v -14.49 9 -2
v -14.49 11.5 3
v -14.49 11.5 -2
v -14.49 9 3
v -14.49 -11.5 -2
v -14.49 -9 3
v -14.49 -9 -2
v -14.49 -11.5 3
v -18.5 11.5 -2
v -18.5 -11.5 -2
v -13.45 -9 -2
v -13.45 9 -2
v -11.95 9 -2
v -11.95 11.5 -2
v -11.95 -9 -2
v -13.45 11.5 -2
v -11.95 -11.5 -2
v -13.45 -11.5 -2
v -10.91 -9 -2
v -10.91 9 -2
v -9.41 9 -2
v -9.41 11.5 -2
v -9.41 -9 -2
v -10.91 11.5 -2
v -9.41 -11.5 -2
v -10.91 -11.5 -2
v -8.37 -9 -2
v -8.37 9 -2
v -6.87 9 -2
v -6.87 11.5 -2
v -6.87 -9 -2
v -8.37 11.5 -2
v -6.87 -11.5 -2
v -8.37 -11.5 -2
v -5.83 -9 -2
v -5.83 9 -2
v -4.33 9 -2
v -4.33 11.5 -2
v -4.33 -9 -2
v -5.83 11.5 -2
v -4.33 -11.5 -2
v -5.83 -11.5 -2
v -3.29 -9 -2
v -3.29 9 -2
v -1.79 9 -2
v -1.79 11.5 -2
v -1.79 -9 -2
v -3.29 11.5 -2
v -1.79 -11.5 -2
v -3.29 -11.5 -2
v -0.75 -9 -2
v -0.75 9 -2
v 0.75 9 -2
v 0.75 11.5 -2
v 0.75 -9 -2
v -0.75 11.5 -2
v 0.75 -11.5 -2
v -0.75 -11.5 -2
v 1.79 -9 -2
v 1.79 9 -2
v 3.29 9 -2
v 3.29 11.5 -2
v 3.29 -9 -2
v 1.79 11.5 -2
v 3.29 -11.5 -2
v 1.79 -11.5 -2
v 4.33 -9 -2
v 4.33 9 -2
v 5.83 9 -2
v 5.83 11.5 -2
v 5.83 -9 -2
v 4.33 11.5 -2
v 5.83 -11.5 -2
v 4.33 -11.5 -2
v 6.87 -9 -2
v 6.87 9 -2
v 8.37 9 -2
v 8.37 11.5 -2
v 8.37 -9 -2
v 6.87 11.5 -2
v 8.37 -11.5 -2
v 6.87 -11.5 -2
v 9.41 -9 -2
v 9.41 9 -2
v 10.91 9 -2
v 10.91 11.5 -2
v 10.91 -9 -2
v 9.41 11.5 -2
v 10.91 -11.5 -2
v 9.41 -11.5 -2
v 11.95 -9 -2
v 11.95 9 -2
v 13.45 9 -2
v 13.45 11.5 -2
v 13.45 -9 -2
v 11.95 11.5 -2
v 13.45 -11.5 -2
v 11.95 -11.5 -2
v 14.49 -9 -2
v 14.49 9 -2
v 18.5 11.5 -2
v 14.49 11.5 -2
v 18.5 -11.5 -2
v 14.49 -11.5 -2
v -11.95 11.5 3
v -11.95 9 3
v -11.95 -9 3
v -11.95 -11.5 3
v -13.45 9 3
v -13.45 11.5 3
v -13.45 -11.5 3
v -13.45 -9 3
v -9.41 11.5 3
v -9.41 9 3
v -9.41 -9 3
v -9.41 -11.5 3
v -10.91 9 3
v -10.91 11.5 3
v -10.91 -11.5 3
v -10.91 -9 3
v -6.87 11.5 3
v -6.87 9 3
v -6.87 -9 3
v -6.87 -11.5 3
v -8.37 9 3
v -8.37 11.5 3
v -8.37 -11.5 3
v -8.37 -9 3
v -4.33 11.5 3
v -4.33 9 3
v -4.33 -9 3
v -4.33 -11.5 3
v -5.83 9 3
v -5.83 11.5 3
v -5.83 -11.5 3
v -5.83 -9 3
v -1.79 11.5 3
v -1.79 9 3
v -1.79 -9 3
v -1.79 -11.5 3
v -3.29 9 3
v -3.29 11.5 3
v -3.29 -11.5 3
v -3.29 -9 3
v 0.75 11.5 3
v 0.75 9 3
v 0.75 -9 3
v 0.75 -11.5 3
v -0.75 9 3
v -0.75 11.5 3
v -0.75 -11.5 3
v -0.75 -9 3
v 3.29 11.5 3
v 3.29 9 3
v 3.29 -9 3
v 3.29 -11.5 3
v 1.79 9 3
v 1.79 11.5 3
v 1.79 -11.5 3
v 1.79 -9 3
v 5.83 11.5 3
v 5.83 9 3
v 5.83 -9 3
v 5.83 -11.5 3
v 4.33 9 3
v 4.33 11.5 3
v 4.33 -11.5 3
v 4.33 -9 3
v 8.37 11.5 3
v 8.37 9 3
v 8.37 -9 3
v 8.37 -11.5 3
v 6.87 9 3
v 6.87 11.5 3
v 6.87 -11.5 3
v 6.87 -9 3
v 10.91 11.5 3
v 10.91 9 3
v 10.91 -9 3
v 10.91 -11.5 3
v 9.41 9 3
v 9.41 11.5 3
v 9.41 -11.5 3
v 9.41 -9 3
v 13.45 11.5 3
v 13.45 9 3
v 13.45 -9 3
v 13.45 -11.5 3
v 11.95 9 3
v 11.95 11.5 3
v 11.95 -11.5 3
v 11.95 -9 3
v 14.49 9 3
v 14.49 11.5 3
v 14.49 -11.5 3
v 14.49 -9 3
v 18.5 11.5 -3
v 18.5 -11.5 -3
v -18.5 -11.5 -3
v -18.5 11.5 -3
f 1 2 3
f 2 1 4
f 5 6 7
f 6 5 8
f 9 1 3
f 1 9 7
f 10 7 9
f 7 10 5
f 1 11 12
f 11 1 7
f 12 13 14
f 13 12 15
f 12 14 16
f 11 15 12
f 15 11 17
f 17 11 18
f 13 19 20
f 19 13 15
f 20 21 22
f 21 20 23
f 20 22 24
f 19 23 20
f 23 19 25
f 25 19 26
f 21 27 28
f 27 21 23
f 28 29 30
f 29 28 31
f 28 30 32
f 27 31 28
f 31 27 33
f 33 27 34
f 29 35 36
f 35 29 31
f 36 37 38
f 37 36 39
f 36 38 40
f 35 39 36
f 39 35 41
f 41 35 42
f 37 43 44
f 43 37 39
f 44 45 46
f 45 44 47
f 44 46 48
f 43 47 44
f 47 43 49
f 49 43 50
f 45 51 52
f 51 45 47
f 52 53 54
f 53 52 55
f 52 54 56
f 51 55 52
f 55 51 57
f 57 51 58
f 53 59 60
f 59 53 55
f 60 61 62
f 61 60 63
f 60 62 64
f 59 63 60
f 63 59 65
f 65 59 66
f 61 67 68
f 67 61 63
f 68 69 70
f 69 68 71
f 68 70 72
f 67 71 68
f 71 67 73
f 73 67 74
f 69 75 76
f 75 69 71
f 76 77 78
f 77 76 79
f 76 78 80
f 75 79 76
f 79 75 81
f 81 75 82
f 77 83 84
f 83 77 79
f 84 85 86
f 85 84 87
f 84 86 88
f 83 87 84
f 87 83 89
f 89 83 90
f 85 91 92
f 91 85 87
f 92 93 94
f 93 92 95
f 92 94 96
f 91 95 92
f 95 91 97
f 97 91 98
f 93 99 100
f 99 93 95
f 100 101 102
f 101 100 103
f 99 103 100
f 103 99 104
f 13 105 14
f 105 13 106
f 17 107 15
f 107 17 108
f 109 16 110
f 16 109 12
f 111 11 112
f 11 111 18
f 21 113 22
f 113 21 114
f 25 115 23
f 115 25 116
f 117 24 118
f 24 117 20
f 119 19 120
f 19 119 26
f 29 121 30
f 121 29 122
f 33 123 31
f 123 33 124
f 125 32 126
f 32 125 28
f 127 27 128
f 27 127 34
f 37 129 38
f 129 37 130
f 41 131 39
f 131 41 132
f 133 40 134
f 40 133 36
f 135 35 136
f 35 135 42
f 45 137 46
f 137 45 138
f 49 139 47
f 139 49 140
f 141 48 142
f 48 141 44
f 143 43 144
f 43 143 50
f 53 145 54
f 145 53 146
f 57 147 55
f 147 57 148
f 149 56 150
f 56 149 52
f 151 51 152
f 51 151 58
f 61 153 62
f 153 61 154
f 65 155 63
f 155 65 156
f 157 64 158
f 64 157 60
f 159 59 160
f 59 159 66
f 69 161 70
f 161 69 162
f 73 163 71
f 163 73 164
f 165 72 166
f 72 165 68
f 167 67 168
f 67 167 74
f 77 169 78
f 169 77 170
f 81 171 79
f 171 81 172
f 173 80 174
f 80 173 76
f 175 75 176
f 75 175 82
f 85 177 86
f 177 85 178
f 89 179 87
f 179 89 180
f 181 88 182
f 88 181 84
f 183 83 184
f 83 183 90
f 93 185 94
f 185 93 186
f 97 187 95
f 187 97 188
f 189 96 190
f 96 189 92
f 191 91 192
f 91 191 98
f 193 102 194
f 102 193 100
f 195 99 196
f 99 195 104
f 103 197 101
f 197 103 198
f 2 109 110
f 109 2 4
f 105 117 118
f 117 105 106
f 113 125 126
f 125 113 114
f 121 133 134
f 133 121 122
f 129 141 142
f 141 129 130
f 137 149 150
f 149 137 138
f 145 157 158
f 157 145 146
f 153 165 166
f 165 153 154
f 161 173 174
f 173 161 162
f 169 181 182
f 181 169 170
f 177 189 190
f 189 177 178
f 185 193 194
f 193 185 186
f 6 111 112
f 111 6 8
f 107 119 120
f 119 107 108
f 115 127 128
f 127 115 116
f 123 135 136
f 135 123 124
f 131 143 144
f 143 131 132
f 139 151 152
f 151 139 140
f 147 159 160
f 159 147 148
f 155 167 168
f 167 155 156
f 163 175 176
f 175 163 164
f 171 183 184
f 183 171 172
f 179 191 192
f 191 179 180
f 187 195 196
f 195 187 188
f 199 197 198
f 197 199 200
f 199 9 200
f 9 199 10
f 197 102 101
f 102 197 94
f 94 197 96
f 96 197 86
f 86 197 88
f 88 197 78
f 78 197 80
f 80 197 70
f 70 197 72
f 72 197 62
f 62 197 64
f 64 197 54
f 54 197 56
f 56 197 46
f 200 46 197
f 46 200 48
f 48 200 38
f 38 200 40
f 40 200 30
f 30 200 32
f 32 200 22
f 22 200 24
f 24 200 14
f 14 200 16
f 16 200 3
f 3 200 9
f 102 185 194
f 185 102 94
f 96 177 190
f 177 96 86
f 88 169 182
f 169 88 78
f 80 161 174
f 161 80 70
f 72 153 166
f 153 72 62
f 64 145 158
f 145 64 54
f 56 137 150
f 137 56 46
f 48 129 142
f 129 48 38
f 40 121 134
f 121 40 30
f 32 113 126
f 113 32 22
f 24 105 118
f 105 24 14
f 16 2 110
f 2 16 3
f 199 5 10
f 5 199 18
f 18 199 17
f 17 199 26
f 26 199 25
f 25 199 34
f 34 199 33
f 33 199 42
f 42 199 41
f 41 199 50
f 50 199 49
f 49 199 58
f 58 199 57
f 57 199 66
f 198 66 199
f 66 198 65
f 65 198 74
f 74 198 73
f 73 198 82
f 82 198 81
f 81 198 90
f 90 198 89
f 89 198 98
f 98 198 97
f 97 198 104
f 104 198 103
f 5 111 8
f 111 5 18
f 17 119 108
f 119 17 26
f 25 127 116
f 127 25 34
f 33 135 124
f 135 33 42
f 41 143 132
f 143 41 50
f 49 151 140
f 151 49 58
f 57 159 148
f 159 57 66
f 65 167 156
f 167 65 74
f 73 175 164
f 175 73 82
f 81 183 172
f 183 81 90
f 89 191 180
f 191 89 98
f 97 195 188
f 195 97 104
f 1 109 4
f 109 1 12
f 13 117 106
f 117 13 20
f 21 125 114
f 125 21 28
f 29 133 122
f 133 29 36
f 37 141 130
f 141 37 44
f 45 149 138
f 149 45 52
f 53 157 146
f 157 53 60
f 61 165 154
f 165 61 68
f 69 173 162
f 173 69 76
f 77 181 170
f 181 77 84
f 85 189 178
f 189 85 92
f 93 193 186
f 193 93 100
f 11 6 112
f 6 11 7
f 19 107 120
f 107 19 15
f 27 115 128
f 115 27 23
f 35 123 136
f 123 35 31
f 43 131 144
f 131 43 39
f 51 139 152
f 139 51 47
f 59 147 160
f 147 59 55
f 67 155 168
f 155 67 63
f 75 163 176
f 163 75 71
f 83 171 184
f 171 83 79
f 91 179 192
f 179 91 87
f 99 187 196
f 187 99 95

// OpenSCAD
// utility for keeping wires organized and not touching for the kb2040 inside

difference() {
    cube([37, 23, 6], center=true);
    translate([0, 0, 1]) cube([33.5, 18, 6], center=true);
    
    for (i = [0:12]) {
        translate([2.54*(i - 6), 0, 1]) #cube([1.5, 24, 6], center=true);
    }
    translate([2.54*(-7), 0, 1]) #cube([5, 24, 6], center=true);
    translate([2.54*(7), 0, 1]) #cube([5, 24, 6], center=true);
}
